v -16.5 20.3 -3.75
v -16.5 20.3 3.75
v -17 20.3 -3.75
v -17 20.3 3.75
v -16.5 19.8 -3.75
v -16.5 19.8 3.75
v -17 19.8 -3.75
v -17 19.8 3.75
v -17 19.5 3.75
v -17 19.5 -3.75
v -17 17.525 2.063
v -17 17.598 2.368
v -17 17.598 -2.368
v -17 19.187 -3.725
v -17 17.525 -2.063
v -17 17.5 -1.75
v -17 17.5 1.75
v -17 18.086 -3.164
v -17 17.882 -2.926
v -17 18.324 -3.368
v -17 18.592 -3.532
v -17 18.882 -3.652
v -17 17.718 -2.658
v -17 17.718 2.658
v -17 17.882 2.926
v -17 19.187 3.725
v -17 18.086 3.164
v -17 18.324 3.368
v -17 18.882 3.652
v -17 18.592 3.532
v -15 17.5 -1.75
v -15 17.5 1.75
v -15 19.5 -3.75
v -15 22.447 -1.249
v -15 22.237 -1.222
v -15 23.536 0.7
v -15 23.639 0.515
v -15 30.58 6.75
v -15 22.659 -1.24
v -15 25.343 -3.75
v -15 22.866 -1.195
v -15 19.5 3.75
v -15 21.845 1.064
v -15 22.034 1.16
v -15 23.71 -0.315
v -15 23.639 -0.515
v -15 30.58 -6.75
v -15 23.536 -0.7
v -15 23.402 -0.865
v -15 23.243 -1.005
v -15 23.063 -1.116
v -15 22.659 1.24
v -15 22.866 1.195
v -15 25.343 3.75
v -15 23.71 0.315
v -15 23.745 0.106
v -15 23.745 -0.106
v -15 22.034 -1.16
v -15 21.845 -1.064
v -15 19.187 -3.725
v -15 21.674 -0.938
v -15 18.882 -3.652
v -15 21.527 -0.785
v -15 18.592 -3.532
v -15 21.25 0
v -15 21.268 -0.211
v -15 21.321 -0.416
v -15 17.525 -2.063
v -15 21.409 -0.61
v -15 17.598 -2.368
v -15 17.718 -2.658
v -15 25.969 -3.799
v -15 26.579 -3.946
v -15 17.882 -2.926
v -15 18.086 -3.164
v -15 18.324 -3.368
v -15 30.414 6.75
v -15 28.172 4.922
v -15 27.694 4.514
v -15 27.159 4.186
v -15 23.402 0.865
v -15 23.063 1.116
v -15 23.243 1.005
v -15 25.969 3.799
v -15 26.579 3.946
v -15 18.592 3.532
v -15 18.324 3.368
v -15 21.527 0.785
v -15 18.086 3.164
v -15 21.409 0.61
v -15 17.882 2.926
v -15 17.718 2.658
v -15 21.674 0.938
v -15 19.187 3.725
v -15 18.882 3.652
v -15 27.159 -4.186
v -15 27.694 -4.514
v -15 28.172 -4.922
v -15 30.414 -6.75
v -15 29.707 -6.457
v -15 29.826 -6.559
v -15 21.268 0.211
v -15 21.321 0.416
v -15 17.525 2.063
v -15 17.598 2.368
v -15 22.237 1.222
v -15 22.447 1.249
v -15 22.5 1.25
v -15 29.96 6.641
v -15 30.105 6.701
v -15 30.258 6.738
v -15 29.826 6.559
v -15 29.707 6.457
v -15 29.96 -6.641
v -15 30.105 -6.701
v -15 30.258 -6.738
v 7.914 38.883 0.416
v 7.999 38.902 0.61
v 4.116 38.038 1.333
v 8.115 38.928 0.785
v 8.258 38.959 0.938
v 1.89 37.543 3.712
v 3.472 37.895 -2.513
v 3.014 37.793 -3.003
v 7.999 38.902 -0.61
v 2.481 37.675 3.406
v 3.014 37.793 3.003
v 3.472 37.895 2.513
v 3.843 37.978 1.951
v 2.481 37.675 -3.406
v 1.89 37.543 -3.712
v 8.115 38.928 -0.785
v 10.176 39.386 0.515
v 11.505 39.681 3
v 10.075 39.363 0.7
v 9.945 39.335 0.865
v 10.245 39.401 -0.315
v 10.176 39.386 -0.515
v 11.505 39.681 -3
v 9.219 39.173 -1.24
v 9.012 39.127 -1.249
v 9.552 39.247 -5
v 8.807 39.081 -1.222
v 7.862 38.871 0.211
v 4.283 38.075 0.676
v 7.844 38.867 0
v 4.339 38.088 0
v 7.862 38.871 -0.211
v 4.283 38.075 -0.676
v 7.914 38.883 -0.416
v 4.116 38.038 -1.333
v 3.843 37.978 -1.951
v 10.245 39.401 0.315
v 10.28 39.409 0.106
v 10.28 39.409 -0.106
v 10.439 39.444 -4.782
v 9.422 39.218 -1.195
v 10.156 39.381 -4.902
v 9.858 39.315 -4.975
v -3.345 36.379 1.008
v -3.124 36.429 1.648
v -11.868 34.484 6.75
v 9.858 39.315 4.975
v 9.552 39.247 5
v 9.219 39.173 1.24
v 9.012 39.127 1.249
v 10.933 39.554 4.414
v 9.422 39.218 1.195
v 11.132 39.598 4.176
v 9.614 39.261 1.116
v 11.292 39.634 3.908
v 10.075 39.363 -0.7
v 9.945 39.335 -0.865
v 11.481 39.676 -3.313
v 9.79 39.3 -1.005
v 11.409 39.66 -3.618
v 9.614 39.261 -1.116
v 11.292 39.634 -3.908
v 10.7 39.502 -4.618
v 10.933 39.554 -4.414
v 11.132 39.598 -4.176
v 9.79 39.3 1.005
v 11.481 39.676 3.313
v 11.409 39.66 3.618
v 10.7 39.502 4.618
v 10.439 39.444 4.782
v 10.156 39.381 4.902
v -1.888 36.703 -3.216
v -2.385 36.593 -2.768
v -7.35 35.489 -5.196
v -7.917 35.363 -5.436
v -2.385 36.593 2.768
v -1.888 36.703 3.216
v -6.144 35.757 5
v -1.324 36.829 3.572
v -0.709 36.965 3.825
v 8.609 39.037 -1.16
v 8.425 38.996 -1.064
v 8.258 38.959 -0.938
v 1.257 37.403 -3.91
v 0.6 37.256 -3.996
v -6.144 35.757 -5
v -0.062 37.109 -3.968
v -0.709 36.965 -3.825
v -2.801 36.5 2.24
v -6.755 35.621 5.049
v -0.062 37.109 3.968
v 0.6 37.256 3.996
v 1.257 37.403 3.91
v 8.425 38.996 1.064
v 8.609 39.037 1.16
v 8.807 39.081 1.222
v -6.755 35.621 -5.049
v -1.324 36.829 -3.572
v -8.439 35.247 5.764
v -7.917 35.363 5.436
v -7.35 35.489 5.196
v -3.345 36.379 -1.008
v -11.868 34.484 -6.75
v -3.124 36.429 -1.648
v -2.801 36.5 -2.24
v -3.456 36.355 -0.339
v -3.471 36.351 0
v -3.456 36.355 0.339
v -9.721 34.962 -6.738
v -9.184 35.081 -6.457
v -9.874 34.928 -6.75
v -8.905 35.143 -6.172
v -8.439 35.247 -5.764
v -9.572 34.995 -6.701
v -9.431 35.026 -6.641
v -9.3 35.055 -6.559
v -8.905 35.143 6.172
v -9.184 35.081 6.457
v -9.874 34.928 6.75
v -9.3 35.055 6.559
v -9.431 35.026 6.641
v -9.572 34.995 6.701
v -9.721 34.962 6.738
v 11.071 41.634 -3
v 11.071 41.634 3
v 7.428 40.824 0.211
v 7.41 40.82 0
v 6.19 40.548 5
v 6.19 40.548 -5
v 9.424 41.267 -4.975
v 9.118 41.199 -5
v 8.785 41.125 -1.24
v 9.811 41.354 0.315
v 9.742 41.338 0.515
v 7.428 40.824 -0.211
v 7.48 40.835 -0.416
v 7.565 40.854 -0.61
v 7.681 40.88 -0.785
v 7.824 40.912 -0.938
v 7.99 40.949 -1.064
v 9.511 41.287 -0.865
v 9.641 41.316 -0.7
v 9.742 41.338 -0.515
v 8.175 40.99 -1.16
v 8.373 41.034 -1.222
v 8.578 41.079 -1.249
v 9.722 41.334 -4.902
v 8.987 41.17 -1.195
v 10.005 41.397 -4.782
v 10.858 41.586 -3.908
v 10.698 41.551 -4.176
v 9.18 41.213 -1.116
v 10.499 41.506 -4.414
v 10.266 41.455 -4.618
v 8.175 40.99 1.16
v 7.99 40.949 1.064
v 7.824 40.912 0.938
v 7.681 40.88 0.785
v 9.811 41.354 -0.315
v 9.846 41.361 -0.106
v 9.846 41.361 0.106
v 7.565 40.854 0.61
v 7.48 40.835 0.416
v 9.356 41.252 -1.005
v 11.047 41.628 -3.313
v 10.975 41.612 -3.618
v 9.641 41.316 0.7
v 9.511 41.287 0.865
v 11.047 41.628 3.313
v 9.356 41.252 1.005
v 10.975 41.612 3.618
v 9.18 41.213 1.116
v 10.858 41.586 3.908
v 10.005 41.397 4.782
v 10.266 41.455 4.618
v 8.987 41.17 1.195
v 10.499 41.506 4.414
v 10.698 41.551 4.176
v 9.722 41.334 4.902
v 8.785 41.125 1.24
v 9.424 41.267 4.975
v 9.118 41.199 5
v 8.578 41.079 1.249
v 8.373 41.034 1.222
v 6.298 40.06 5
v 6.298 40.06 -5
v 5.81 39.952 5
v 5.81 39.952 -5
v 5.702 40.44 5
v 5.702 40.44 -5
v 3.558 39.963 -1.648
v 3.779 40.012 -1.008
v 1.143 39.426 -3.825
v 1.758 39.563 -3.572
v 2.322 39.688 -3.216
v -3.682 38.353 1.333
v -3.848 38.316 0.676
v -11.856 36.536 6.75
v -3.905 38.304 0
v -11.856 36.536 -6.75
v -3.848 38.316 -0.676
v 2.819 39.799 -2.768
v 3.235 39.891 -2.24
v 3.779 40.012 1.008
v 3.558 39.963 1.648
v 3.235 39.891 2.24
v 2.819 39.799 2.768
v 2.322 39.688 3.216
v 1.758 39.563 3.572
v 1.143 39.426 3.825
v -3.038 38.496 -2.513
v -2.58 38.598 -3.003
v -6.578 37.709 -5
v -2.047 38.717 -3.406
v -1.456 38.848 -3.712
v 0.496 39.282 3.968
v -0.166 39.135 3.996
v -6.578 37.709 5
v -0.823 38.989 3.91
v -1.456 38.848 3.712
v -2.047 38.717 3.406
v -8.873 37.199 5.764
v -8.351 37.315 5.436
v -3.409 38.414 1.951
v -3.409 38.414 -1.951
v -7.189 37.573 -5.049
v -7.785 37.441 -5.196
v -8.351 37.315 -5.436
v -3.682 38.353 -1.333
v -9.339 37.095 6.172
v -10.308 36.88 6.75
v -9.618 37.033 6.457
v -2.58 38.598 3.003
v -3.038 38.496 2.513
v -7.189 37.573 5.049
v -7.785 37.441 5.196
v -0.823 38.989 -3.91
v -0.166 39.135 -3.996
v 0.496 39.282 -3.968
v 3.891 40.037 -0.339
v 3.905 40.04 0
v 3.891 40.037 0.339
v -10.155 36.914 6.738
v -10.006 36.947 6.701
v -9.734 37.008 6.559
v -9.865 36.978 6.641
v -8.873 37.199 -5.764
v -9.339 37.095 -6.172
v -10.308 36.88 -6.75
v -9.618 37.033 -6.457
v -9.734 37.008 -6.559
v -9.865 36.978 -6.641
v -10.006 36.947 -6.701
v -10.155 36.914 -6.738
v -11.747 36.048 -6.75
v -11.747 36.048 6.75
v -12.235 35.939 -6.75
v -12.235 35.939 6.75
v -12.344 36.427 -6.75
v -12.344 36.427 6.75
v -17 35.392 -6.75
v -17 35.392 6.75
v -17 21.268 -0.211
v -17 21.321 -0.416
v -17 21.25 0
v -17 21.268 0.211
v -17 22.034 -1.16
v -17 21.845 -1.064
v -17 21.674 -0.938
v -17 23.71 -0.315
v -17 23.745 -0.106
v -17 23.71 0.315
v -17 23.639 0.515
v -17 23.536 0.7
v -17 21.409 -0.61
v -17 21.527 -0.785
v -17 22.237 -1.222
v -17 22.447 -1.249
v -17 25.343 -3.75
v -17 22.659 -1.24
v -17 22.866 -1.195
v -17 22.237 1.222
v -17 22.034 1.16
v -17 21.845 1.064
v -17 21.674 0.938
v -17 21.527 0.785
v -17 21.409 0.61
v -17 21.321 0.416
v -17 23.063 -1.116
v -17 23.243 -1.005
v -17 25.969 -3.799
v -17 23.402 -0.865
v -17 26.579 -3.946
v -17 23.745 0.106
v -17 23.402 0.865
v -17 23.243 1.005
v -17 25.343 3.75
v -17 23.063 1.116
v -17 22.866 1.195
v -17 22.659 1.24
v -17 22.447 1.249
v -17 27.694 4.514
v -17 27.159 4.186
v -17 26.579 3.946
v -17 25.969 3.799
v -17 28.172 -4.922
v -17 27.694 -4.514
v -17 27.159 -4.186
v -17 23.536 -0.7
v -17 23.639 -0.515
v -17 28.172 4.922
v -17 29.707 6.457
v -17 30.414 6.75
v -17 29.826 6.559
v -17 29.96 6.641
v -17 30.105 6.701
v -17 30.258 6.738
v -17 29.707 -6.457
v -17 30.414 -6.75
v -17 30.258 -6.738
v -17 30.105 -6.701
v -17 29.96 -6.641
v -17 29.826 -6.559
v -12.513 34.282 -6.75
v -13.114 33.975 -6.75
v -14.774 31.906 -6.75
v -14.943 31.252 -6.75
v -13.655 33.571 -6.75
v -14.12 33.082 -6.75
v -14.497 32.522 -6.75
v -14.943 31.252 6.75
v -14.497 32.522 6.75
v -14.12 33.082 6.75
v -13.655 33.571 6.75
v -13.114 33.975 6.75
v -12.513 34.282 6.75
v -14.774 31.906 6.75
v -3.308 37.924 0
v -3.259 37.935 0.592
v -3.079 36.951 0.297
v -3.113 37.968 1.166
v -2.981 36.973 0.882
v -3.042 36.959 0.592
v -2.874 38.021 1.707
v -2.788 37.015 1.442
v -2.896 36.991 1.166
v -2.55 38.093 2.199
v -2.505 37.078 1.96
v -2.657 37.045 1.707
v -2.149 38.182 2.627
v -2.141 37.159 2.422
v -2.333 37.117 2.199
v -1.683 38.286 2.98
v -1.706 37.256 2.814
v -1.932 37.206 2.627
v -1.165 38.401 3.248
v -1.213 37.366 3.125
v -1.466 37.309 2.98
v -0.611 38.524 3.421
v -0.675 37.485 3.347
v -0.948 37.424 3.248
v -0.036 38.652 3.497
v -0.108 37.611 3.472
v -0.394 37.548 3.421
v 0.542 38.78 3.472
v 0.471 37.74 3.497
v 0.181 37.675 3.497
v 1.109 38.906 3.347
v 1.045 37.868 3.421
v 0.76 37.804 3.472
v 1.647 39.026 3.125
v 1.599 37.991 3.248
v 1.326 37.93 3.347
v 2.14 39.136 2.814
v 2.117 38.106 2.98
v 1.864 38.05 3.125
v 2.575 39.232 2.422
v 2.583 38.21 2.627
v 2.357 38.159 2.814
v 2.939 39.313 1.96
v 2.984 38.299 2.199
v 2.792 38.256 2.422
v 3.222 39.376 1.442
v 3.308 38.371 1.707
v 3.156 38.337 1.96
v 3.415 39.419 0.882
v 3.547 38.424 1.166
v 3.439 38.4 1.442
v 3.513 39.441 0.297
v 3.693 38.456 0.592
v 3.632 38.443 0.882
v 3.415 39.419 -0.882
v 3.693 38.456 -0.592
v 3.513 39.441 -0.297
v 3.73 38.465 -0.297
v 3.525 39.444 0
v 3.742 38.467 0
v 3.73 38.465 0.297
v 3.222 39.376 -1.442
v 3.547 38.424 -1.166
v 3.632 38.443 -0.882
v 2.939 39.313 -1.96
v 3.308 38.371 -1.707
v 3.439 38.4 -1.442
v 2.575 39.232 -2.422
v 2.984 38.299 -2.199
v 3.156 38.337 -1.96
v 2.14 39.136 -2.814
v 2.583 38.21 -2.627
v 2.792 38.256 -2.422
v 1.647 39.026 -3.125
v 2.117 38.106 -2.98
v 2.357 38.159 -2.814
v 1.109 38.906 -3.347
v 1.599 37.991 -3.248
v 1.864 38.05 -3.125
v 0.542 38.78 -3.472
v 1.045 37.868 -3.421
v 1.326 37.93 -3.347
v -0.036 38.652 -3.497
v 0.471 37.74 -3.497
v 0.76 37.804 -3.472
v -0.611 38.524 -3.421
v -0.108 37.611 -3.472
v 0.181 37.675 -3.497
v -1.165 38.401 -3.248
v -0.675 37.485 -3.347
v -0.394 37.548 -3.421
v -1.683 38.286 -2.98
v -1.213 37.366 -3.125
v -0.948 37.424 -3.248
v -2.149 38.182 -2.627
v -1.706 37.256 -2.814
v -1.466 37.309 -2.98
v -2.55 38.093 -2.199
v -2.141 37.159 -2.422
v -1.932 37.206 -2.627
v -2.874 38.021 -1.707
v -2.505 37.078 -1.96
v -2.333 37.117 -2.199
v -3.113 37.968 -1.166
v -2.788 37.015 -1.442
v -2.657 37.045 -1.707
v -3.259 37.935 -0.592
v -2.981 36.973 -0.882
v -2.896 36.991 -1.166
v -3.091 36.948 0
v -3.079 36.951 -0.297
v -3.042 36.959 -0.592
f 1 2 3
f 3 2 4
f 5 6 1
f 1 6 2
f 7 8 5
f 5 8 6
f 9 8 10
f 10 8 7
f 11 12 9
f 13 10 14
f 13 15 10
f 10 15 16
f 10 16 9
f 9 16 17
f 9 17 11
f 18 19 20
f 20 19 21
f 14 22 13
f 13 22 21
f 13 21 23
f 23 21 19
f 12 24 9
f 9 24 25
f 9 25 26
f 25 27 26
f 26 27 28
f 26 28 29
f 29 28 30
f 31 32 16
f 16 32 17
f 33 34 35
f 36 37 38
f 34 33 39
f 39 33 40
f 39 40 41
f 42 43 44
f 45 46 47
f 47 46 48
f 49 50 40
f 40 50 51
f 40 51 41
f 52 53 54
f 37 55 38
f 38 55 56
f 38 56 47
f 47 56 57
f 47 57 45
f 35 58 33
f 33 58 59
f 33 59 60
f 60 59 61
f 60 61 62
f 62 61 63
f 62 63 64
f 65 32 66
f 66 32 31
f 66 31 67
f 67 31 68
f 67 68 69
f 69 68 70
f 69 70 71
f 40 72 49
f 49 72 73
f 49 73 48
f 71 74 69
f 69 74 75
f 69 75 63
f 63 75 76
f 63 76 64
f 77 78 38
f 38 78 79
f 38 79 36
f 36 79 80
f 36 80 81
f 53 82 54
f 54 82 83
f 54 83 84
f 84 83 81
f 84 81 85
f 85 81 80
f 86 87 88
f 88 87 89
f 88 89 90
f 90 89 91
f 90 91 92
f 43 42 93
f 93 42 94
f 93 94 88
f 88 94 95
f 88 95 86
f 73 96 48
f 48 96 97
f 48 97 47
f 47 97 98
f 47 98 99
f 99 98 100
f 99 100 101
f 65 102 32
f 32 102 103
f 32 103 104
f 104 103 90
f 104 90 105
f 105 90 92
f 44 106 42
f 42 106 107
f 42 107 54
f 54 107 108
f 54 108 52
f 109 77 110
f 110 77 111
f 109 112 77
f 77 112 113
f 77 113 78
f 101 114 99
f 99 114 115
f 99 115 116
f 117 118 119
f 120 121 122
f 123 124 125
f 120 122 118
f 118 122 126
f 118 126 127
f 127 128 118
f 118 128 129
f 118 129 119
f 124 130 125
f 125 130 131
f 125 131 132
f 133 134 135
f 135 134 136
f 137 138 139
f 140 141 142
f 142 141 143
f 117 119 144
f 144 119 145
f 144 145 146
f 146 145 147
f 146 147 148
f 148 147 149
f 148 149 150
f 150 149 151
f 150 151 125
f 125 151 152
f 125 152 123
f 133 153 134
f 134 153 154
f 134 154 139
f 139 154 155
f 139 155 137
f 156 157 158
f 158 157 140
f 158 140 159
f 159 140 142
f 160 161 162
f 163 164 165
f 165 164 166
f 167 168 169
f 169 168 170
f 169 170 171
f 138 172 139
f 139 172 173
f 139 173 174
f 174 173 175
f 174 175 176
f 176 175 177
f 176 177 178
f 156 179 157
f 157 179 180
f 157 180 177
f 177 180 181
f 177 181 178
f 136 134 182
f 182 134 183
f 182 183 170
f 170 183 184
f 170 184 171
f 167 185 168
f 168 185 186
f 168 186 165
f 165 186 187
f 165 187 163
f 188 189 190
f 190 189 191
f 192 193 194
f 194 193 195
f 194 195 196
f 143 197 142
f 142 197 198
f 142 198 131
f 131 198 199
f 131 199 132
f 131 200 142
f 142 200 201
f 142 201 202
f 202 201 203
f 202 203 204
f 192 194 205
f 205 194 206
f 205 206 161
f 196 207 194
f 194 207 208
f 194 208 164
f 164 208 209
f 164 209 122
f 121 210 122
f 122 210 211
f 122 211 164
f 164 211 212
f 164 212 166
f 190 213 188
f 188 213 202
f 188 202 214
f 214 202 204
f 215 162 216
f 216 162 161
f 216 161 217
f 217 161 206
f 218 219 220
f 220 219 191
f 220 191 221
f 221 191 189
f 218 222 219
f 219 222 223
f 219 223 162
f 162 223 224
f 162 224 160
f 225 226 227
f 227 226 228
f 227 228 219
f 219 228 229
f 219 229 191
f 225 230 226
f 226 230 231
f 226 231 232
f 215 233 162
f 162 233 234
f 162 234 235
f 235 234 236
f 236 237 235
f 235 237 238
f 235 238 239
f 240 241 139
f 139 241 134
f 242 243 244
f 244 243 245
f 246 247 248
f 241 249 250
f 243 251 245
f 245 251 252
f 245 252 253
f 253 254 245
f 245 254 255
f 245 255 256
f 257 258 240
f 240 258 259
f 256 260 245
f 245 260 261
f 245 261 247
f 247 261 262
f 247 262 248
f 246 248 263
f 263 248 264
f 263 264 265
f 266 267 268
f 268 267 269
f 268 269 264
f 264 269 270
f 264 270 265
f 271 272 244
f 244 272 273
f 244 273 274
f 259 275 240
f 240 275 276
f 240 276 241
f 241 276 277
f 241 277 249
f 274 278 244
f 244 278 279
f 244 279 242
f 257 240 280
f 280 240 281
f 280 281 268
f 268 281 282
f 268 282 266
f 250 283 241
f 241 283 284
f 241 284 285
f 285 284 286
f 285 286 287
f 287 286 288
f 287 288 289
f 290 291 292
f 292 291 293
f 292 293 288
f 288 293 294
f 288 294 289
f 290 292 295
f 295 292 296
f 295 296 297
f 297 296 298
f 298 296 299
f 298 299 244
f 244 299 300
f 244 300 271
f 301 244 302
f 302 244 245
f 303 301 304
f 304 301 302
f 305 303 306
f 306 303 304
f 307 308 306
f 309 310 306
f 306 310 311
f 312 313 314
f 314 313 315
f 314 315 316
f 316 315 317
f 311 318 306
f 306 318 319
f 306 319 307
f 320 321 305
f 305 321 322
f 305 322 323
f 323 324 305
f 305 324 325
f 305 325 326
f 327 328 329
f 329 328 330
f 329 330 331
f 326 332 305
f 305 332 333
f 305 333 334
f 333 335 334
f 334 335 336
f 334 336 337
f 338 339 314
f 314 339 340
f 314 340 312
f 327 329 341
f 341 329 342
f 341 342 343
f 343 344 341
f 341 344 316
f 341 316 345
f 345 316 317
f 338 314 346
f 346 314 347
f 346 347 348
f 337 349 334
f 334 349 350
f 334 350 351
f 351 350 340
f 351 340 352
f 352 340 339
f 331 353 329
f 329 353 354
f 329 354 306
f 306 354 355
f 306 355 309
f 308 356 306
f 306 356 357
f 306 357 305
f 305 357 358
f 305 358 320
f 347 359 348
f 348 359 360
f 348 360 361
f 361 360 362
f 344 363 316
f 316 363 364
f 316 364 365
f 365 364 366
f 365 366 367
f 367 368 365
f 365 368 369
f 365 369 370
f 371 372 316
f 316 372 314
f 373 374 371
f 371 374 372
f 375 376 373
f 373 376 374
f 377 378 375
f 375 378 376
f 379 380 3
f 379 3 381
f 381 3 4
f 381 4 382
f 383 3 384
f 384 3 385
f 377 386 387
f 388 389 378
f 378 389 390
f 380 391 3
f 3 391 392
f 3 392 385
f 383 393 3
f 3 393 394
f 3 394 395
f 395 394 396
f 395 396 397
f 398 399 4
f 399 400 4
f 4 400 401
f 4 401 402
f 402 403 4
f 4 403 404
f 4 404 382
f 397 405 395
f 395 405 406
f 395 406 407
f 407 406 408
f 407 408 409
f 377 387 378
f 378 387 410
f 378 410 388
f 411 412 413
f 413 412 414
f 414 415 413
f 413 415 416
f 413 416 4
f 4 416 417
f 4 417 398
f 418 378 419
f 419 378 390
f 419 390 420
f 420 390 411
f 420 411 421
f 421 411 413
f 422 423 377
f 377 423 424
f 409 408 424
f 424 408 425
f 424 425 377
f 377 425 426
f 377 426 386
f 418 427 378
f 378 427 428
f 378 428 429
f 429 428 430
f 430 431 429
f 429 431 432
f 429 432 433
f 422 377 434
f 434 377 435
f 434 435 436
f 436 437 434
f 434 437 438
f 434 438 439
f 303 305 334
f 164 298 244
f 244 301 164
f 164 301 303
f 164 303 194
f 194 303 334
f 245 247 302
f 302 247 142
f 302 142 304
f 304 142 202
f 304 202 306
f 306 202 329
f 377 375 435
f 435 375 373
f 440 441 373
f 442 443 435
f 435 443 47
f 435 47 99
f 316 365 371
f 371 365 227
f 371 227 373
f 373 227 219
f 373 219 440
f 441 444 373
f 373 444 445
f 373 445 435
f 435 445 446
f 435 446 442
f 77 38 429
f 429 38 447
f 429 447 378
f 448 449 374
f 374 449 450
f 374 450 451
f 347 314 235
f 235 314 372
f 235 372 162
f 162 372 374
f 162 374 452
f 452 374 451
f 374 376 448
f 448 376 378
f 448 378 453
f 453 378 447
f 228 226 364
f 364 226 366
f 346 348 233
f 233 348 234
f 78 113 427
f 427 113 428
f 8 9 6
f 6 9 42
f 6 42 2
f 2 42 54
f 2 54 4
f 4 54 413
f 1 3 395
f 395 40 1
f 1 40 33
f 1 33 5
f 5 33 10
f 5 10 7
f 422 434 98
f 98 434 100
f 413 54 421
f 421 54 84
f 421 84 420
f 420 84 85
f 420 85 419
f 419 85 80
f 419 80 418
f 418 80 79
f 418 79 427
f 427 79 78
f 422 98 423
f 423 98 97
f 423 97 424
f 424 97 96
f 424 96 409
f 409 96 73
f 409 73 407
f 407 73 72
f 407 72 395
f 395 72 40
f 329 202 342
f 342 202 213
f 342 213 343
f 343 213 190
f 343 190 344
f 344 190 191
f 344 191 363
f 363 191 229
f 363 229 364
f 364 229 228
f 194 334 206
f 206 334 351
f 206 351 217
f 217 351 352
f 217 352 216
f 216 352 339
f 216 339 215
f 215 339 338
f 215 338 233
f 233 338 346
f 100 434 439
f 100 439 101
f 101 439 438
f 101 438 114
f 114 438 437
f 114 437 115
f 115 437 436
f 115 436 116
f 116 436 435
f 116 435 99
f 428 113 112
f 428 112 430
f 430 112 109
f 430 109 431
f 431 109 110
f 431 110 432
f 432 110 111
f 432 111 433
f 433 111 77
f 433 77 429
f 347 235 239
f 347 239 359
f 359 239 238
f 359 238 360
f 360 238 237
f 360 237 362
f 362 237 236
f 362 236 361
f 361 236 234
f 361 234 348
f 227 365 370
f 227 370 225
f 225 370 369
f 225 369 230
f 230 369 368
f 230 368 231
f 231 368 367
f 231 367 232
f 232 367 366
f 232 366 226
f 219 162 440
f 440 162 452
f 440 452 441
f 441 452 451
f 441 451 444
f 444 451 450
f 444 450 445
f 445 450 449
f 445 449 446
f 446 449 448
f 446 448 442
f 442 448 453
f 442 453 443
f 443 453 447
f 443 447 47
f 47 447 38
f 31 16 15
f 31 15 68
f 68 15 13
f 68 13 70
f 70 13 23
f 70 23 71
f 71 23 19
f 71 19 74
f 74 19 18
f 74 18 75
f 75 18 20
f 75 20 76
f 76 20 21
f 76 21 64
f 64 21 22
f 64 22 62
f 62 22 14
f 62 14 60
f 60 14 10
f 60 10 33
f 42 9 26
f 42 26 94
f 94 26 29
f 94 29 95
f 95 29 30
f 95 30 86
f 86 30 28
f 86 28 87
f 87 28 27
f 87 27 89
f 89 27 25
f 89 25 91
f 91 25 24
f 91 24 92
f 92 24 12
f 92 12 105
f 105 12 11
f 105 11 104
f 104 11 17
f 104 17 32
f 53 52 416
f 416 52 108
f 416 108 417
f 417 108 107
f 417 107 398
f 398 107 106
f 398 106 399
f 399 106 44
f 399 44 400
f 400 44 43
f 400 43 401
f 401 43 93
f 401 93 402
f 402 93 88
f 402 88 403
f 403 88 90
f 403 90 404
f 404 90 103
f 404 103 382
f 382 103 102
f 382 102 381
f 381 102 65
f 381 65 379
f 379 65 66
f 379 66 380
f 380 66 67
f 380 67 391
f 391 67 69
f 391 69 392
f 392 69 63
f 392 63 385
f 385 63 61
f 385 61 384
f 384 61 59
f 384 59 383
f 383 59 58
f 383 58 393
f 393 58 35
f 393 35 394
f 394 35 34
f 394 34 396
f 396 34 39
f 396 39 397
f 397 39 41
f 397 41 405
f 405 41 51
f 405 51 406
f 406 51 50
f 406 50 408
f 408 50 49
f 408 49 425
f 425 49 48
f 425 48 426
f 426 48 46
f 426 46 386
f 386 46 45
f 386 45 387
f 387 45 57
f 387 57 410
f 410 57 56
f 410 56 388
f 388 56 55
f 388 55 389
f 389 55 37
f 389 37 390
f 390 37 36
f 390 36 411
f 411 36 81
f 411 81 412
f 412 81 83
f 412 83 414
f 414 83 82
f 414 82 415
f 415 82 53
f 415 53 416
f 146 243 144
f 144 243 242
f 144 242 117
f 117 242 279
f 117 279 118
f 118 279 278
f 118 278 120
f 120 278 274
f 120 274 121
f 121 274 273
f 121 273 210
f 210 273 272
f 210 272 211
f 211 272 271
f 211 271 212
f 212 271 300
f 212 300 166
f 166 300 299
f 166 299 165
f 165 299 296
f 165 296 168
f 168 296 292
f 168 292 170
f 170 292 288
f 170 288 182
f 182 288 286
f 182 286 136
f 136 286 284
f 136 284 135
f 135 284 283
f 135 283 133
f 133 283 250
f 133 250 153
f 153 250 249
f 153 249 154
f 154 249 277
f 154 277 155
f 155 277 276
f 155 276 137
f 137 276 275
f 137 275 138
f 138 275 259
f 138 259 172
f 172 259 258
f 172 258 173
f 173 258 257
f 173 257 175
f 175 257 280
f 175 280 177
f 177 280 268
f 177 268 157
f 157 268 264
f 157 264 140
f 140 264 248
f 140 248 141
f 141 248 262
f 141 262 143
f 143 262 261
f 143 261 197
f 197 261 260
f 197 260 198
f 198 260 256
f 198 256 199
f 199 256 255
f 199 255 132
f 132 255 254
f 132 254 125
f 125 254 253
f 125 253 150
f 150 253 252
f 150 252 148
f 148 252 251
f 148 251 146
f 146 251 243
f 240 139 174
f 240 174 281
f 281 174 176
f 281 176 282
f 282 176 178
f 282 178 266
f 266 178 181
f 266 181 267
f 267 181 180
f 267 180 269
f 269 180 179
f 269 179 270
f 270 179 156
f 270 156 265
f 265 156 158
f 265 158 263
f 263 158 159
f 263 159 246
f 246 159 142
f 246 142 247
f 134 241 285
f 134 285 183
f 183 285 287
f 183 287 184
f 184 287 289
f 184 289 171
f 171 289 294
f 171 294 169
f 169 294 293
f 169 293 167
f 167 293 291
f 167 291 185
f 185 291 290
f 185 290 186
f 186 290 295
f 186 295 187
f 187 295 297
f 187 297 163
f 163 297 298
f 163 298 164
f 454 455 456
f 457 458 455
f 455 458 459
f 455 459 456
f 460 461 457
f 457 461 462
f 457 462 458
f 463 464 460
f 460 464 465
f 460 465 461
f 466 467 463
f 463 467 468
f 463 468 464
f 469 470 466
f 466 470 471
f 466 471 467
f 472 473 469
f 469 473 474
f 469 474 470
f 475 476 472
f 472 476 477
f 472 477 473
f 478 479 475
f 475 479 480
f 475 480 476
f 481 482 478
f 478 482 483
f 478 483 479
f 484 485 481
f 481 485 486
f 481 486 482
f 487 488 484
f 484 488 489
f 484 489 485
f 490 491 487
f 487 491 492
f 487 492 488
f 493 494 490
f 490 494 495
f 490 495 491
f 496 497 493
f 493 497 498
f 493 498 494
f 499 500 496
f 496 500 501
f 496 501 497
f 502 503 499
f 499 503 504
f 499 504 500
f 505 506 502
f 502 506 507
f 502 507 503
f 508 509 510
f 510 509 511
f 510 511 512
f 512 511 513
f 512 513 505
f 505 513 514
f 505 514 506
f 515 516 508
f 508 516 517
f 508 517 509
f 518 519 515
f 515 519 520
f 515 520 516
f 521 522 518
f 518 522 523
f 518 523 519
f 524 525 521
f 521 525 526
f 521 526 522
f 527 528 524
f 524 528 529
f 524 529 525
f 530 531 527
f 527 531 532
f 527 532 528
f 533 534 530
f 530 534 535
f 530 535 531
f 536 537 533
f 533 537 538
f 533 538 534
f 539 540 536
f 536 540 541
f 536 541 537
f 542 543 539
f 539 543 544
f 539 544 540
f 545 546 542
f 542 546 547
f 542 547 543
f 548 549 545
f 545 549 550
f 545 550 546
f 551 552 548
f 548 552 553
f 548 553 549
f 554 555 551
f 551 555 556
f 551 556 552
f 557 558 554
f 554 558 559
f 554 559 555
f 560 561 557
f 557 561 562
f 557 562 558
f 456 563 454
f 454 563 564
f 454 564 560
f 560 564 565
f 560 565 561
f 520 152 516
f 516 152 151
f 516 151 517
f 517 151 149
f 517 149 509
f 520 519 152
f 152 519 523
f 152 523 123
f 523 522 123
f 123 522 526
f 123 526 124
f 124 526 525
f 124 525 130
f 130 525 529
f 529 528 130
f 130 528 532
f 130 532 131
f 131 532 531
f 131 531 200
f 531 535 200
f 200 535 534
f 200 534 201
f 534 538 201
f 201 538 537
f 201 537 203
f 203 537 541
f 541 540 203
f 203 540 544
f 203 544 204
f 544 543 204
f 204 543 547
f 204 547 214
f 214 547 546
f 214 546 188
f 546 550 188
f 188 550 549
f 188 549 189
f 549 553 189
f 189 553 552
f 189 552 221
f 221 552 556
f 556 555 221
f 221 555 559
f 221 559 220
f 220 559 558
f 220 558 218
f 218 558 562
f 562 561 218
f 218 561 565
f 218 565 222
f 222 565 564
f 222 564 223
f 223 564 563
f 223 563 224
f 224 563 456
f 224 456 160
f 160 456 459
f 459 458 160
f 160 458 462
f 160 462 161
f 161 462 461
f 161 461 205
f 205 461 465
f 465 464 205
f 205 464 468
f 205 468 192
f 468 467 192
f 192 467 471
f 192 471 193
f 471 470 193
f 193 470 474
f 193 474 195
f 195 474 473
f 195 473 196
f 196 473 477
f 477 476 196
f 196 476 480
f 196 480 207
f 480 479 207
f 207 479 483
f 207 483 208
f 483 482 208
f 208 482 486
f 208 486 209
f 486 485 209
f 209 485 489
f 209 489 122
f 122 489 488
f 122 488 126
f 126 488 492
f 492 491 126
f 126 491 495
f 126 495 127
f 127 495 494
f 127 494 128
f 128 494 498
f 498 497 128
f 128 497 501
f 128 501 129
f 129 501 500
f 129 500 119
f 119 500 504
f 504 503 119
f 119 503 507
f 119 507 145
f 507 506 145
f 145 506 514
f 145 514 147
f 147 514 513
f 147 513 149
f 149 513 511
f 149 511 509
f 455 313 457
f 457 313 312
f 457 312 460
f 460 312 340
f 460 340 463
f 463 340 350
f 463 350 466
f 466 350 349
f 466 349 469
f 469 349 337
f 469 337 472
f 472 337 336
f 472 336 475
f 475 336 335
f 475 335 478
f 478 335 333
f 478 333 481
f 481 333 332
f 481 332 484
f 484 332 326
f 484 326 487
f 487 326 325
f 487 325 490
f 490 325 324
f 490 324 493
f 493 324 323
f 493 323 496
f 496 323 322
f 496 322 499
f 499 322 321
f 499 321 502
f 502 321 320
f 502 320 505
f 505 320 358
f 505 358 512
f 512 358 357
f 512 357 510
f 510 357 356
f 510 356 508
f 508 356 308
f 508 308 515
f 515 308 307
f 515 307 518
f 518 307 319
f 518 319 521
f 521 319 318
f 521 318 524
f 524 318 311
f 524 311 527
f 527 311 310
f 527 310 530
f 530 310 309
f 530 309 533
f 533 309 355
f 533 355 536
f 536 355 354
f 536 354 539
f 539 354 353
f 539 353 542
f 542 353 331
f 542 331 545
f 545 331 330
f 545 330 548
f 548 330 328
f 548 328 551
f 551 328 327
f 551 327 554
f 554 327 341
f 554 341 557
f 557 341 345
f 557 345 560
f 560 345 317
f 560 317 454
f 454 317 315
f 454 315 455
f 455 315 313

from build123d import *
from OCP.BRepFilletAPI import BRepFilletAPI_MakeFillet

# Parameters (mm, degrees)
BOSS_EXTRUDE1_DEPTH = 5
BOSS_EXTRUDE2_DEPTH = 6.75
CHAMFER1_SIZE       = 3
CUT_EXTRUDE1_DEPTH  = 51.906134019
FILLET1_R1          = 1
FILLET1_R2          = 4
FILLET2_R           = 4
FILLET3_R           = 2
SKETCH5_R           = 1.25
CUT_EXTRUDE2_DEPTH  = 51.906134019
SKETCH6_R           = 1.25
CUT_EXTRUDE3_DEPTH  = 29.824774908
FILLET4_R           = 2
SKETCH7_R           = 3.5
CUT_EXTRUDE4_DEPTH  = 29.824774908
CHAMFER2_SIZE       = 0.5


with BuildPart() as part:
    # Sketch1 → Boss-Extrude1 (new, symmetric)
    with BuildSketch(Plane.XY):
        Polygon((-15, 33.787773645), (11.504683177, 39.681261814), (11.070572477, 41.63358041), (6.189775987, 40.548303662), (6.298303662, 40.060224013), (5.810224013, 39.951696338), (5.701696338, 40.439775987), (-11.855909094, 36.53572857), (-11.747381419, 36.047648921), (-12.235461068, 35.939121246), (-12.343988743, 36.427200895), (-17, 35.391906601), (-17, 20.3), (-16.5, 20.3), (-16.5, 19.8), (-17, 19.8), (-17, 17.5), (-15, 17.5), align=None)
    extrude(amount=BOSS_EXTRUDE1_DEPTH, both=True)

    # Sketch3 → Boss-Extrude2 (add, symmetric)
    with BuildSketch(Plane.XY):
        Polygon((-6.541001904, 35.668686722), (-6.975112604, 37.621005318), (-11.855909094, 36.53572857), (-11.747381419, 36.047648921), (-12.235461068, 35.939121246), (-12.343988743, 36.427200895), (-17, 35.391906601), (-17, 20.3), (-16.5, 20.3), (-16.5, 19.8), (-17, 19.8), (-17, 17.5), (-15, 17.5), (-15, 33.787773645), align=None)
    extrude(amount=BOSS_EXTRUDE2_DEPTH, both=True)

    # Chamfer1
    # the kernel refuses this chamfer: 3 mm, written as the material it takes off along each edge
    with BuildSketch(Plane(origin=(-4.866409254, 28.137569941, -6.75), x_dir=(0.0268403556117362, 0.005968127111591266, 0.9996219169112968), z_dir=(-0.21705534964808215, 0.9761592980600804, 0))) as chamfer1_piece_1_section:
        Polygon((CHAMFER1_SIZE * 0.999621916911, -CHAMFER1_SIZE * 0.0274958766106), (-CHAMFER1_SIZE * 0.0274958766106, -CHAMFER1_SIZE * 0.999621916911), (0, 0), align=None)
    chamfer1_piece_1 = extrude(amount=17.430097928, mode=Mode.PRIVATE)
    chamfer1_piece_1 = split(chamfer1_piece_1, bisect_by=Plane(origin=(-7.864790055, 36.398756806, -5), z_dir=(0, 0, -1)), keep=Keep.TOP, mode=Mode.PRIVATE)
    add(chamfer1_piece_1, mode=Mode.SUBTRACT)
    with BuildSketch(Plane(origin=(-4.866409254, 28.137569941, 6.75), x_dir=(-0.9757902287376033, -0.2169732846910676, 0.02749587661058649), z_dir=(-0.21705534964808215, 0.9761592980600804, 0))) as chamfer1_piece_2_section:
        Polygon((CHAMFER1_SIZE * 0.999621916911, -CHAMFER1_SIZE * 0.0274958766106), (-CHAMFER1_SIZE * 0.0274958766106, -CHAMFER1_SIZE * 0.999621916911), (0, 0), align=None)
    chamfer1_piece_2 = extrude(amount=17.430097928, mode=Mode.PRIVATE)
    chamfer1_piece_2 = split(chamfer1_piece_2, bisect_by=Plane(origin=(-7.864790055, 36.398756806, 5), z_dir=(0, 0, 1)), keep=Keep.TOP, mode=Mode.PRIVATE)
    add(chamfer1_piece_2, mode=Mode.SUBTRACT)

    # Sketch4 → Cut-Extrude1 (cut, through all)
    with BuildSketch(Plane.ZY.offset(17)):
        Polygon((-6.75, 30), (-3.75, 27), (-3.75, 17.5), (3.75, 17.5), (3.75, 27), (6.75, 30), (6.75, 0), (-6.75, 0), align=None)
    extrude(amount=-CUT_EXTRUDE1_DEPTH, mode=Mode.SUBTRACT)

    # Fillet1: one fillet with a radius per group of edges: ONE call of the kernel's fillet builder (fillet() takes one radius for all edges)
    fillet1_edges_1 = [part.edges().sort_by_distance(p)[0] for p in [
        (-9.686535148, 35.993679971, -6.75),
        (-9.686535148, 35.993679971, 6.75),
        (-16, 30, 6.75),
        (-16, 30, -6.75),
    ]]
    fillet1_edges_2 = [part.edges().sort_by_distance(p)[0] for p in [
        (-7.978256377, 36.373526833, 5),
        (-7.978256377, 36.373526833, -5),
        (-16, 27, -3.75),
        (-16, 27, 3.75),
    ]]
    fillet1 = BRepFilletAPI_MakeFillet(part.part.solid().wrapped)
    for e in fillet1_edges_1:
        fillet1.Add(FILLET1_R1, e.wrapped)
    for e in fillet1_edges_2:
        fillet1.Add(FILLET1_R2, e.wrapped)
    add(Compound.cast(fillet1.Shape()), mode=Mode.REPLACE)

    # Fillet2
    fillet2_edges = [part.edges().sort_by_distance(p)[0] for p in [
        (-15, 33.787773645, 0),
    ]]
    fillet(fillet2_edges, radius=FILLET2_R)

    # Fillet3
    fillet3_edges = [part.edges().sort_by_distance(p)[0] for p in [
        (-16, 17.5, -3.75),
        (-16, 17.5, 3.75),
    ]]
    fillet(fillet3_edges, radius=FILLET3_R)

    # Sketch5 → Cut-Extrude2 (cut, through all)
    with BuildSketch(Plane.ZY.offset(17)):
        with Locations(Location((0, 22.5, 0), (0, 0, 270))):
            Circle(SKETCH5_R)
    extrude(amount=-CUT_EXTRUDE2_DEPTH, mode=Mode.SUBTRACT)

    # Sketch6 → Cut-Extrude3 (cut, through all)
    with BuildSketch(Plane(origin=(-8.299779748, 37.326456989, 0), x_dir=(0.9761592980600814, 0.21705534964807782, 0), z_dir=(-0.21705534964807782, 0.9761592980600814, 0))):
        with Locations(Location((17.343433612, 0, 0), (0, 0, 180))):
            Circle(SKETCH6_R)
    extrude(amount=-CUT_EXTRUDE3_DEPTH, mode=Mode.SUBTRACT)

    # Fillet4
    fillet4_edges = [part.edges().sort_by_distance(p)[0] for p in [
        (11.287627827, 40.657421112, -5),
        (11.287627827, 40.657421112, 5),
    ]]
    fillet(fillet4_edges, radius=FILLET4_R)

    # Sketch7 → Cut-Extrude4 (cut, through all)
    with BuildSketch(Plane(origin=(-8.299779748, 37.326456989, 0), x_dir=(0.9761592980600813, 0.21705534964807838, 0), z_dir=(-0.21705534964807838, 0.9761592980600813, 0))):
        with Locations(Location((8.502484958, 0, 0), (0, 0, 180))):
            Circle(SKETCH7_R)
    extrude(amount=-CUT_EXTRUDE4_DEPTH, mode=Mode.SUBTRACT)

    # Chamfer2
    chamfer2_edges = [part.edges().sort_by_distance(p)[0] for p in [
        (3.850668243, 37.979341962, 0),
        (3.416557543, 39.931660559, 0),
    ]]
    chamfer(chamfer2_edges, length=CHAMFER2_SIZE)


solid = part.part
